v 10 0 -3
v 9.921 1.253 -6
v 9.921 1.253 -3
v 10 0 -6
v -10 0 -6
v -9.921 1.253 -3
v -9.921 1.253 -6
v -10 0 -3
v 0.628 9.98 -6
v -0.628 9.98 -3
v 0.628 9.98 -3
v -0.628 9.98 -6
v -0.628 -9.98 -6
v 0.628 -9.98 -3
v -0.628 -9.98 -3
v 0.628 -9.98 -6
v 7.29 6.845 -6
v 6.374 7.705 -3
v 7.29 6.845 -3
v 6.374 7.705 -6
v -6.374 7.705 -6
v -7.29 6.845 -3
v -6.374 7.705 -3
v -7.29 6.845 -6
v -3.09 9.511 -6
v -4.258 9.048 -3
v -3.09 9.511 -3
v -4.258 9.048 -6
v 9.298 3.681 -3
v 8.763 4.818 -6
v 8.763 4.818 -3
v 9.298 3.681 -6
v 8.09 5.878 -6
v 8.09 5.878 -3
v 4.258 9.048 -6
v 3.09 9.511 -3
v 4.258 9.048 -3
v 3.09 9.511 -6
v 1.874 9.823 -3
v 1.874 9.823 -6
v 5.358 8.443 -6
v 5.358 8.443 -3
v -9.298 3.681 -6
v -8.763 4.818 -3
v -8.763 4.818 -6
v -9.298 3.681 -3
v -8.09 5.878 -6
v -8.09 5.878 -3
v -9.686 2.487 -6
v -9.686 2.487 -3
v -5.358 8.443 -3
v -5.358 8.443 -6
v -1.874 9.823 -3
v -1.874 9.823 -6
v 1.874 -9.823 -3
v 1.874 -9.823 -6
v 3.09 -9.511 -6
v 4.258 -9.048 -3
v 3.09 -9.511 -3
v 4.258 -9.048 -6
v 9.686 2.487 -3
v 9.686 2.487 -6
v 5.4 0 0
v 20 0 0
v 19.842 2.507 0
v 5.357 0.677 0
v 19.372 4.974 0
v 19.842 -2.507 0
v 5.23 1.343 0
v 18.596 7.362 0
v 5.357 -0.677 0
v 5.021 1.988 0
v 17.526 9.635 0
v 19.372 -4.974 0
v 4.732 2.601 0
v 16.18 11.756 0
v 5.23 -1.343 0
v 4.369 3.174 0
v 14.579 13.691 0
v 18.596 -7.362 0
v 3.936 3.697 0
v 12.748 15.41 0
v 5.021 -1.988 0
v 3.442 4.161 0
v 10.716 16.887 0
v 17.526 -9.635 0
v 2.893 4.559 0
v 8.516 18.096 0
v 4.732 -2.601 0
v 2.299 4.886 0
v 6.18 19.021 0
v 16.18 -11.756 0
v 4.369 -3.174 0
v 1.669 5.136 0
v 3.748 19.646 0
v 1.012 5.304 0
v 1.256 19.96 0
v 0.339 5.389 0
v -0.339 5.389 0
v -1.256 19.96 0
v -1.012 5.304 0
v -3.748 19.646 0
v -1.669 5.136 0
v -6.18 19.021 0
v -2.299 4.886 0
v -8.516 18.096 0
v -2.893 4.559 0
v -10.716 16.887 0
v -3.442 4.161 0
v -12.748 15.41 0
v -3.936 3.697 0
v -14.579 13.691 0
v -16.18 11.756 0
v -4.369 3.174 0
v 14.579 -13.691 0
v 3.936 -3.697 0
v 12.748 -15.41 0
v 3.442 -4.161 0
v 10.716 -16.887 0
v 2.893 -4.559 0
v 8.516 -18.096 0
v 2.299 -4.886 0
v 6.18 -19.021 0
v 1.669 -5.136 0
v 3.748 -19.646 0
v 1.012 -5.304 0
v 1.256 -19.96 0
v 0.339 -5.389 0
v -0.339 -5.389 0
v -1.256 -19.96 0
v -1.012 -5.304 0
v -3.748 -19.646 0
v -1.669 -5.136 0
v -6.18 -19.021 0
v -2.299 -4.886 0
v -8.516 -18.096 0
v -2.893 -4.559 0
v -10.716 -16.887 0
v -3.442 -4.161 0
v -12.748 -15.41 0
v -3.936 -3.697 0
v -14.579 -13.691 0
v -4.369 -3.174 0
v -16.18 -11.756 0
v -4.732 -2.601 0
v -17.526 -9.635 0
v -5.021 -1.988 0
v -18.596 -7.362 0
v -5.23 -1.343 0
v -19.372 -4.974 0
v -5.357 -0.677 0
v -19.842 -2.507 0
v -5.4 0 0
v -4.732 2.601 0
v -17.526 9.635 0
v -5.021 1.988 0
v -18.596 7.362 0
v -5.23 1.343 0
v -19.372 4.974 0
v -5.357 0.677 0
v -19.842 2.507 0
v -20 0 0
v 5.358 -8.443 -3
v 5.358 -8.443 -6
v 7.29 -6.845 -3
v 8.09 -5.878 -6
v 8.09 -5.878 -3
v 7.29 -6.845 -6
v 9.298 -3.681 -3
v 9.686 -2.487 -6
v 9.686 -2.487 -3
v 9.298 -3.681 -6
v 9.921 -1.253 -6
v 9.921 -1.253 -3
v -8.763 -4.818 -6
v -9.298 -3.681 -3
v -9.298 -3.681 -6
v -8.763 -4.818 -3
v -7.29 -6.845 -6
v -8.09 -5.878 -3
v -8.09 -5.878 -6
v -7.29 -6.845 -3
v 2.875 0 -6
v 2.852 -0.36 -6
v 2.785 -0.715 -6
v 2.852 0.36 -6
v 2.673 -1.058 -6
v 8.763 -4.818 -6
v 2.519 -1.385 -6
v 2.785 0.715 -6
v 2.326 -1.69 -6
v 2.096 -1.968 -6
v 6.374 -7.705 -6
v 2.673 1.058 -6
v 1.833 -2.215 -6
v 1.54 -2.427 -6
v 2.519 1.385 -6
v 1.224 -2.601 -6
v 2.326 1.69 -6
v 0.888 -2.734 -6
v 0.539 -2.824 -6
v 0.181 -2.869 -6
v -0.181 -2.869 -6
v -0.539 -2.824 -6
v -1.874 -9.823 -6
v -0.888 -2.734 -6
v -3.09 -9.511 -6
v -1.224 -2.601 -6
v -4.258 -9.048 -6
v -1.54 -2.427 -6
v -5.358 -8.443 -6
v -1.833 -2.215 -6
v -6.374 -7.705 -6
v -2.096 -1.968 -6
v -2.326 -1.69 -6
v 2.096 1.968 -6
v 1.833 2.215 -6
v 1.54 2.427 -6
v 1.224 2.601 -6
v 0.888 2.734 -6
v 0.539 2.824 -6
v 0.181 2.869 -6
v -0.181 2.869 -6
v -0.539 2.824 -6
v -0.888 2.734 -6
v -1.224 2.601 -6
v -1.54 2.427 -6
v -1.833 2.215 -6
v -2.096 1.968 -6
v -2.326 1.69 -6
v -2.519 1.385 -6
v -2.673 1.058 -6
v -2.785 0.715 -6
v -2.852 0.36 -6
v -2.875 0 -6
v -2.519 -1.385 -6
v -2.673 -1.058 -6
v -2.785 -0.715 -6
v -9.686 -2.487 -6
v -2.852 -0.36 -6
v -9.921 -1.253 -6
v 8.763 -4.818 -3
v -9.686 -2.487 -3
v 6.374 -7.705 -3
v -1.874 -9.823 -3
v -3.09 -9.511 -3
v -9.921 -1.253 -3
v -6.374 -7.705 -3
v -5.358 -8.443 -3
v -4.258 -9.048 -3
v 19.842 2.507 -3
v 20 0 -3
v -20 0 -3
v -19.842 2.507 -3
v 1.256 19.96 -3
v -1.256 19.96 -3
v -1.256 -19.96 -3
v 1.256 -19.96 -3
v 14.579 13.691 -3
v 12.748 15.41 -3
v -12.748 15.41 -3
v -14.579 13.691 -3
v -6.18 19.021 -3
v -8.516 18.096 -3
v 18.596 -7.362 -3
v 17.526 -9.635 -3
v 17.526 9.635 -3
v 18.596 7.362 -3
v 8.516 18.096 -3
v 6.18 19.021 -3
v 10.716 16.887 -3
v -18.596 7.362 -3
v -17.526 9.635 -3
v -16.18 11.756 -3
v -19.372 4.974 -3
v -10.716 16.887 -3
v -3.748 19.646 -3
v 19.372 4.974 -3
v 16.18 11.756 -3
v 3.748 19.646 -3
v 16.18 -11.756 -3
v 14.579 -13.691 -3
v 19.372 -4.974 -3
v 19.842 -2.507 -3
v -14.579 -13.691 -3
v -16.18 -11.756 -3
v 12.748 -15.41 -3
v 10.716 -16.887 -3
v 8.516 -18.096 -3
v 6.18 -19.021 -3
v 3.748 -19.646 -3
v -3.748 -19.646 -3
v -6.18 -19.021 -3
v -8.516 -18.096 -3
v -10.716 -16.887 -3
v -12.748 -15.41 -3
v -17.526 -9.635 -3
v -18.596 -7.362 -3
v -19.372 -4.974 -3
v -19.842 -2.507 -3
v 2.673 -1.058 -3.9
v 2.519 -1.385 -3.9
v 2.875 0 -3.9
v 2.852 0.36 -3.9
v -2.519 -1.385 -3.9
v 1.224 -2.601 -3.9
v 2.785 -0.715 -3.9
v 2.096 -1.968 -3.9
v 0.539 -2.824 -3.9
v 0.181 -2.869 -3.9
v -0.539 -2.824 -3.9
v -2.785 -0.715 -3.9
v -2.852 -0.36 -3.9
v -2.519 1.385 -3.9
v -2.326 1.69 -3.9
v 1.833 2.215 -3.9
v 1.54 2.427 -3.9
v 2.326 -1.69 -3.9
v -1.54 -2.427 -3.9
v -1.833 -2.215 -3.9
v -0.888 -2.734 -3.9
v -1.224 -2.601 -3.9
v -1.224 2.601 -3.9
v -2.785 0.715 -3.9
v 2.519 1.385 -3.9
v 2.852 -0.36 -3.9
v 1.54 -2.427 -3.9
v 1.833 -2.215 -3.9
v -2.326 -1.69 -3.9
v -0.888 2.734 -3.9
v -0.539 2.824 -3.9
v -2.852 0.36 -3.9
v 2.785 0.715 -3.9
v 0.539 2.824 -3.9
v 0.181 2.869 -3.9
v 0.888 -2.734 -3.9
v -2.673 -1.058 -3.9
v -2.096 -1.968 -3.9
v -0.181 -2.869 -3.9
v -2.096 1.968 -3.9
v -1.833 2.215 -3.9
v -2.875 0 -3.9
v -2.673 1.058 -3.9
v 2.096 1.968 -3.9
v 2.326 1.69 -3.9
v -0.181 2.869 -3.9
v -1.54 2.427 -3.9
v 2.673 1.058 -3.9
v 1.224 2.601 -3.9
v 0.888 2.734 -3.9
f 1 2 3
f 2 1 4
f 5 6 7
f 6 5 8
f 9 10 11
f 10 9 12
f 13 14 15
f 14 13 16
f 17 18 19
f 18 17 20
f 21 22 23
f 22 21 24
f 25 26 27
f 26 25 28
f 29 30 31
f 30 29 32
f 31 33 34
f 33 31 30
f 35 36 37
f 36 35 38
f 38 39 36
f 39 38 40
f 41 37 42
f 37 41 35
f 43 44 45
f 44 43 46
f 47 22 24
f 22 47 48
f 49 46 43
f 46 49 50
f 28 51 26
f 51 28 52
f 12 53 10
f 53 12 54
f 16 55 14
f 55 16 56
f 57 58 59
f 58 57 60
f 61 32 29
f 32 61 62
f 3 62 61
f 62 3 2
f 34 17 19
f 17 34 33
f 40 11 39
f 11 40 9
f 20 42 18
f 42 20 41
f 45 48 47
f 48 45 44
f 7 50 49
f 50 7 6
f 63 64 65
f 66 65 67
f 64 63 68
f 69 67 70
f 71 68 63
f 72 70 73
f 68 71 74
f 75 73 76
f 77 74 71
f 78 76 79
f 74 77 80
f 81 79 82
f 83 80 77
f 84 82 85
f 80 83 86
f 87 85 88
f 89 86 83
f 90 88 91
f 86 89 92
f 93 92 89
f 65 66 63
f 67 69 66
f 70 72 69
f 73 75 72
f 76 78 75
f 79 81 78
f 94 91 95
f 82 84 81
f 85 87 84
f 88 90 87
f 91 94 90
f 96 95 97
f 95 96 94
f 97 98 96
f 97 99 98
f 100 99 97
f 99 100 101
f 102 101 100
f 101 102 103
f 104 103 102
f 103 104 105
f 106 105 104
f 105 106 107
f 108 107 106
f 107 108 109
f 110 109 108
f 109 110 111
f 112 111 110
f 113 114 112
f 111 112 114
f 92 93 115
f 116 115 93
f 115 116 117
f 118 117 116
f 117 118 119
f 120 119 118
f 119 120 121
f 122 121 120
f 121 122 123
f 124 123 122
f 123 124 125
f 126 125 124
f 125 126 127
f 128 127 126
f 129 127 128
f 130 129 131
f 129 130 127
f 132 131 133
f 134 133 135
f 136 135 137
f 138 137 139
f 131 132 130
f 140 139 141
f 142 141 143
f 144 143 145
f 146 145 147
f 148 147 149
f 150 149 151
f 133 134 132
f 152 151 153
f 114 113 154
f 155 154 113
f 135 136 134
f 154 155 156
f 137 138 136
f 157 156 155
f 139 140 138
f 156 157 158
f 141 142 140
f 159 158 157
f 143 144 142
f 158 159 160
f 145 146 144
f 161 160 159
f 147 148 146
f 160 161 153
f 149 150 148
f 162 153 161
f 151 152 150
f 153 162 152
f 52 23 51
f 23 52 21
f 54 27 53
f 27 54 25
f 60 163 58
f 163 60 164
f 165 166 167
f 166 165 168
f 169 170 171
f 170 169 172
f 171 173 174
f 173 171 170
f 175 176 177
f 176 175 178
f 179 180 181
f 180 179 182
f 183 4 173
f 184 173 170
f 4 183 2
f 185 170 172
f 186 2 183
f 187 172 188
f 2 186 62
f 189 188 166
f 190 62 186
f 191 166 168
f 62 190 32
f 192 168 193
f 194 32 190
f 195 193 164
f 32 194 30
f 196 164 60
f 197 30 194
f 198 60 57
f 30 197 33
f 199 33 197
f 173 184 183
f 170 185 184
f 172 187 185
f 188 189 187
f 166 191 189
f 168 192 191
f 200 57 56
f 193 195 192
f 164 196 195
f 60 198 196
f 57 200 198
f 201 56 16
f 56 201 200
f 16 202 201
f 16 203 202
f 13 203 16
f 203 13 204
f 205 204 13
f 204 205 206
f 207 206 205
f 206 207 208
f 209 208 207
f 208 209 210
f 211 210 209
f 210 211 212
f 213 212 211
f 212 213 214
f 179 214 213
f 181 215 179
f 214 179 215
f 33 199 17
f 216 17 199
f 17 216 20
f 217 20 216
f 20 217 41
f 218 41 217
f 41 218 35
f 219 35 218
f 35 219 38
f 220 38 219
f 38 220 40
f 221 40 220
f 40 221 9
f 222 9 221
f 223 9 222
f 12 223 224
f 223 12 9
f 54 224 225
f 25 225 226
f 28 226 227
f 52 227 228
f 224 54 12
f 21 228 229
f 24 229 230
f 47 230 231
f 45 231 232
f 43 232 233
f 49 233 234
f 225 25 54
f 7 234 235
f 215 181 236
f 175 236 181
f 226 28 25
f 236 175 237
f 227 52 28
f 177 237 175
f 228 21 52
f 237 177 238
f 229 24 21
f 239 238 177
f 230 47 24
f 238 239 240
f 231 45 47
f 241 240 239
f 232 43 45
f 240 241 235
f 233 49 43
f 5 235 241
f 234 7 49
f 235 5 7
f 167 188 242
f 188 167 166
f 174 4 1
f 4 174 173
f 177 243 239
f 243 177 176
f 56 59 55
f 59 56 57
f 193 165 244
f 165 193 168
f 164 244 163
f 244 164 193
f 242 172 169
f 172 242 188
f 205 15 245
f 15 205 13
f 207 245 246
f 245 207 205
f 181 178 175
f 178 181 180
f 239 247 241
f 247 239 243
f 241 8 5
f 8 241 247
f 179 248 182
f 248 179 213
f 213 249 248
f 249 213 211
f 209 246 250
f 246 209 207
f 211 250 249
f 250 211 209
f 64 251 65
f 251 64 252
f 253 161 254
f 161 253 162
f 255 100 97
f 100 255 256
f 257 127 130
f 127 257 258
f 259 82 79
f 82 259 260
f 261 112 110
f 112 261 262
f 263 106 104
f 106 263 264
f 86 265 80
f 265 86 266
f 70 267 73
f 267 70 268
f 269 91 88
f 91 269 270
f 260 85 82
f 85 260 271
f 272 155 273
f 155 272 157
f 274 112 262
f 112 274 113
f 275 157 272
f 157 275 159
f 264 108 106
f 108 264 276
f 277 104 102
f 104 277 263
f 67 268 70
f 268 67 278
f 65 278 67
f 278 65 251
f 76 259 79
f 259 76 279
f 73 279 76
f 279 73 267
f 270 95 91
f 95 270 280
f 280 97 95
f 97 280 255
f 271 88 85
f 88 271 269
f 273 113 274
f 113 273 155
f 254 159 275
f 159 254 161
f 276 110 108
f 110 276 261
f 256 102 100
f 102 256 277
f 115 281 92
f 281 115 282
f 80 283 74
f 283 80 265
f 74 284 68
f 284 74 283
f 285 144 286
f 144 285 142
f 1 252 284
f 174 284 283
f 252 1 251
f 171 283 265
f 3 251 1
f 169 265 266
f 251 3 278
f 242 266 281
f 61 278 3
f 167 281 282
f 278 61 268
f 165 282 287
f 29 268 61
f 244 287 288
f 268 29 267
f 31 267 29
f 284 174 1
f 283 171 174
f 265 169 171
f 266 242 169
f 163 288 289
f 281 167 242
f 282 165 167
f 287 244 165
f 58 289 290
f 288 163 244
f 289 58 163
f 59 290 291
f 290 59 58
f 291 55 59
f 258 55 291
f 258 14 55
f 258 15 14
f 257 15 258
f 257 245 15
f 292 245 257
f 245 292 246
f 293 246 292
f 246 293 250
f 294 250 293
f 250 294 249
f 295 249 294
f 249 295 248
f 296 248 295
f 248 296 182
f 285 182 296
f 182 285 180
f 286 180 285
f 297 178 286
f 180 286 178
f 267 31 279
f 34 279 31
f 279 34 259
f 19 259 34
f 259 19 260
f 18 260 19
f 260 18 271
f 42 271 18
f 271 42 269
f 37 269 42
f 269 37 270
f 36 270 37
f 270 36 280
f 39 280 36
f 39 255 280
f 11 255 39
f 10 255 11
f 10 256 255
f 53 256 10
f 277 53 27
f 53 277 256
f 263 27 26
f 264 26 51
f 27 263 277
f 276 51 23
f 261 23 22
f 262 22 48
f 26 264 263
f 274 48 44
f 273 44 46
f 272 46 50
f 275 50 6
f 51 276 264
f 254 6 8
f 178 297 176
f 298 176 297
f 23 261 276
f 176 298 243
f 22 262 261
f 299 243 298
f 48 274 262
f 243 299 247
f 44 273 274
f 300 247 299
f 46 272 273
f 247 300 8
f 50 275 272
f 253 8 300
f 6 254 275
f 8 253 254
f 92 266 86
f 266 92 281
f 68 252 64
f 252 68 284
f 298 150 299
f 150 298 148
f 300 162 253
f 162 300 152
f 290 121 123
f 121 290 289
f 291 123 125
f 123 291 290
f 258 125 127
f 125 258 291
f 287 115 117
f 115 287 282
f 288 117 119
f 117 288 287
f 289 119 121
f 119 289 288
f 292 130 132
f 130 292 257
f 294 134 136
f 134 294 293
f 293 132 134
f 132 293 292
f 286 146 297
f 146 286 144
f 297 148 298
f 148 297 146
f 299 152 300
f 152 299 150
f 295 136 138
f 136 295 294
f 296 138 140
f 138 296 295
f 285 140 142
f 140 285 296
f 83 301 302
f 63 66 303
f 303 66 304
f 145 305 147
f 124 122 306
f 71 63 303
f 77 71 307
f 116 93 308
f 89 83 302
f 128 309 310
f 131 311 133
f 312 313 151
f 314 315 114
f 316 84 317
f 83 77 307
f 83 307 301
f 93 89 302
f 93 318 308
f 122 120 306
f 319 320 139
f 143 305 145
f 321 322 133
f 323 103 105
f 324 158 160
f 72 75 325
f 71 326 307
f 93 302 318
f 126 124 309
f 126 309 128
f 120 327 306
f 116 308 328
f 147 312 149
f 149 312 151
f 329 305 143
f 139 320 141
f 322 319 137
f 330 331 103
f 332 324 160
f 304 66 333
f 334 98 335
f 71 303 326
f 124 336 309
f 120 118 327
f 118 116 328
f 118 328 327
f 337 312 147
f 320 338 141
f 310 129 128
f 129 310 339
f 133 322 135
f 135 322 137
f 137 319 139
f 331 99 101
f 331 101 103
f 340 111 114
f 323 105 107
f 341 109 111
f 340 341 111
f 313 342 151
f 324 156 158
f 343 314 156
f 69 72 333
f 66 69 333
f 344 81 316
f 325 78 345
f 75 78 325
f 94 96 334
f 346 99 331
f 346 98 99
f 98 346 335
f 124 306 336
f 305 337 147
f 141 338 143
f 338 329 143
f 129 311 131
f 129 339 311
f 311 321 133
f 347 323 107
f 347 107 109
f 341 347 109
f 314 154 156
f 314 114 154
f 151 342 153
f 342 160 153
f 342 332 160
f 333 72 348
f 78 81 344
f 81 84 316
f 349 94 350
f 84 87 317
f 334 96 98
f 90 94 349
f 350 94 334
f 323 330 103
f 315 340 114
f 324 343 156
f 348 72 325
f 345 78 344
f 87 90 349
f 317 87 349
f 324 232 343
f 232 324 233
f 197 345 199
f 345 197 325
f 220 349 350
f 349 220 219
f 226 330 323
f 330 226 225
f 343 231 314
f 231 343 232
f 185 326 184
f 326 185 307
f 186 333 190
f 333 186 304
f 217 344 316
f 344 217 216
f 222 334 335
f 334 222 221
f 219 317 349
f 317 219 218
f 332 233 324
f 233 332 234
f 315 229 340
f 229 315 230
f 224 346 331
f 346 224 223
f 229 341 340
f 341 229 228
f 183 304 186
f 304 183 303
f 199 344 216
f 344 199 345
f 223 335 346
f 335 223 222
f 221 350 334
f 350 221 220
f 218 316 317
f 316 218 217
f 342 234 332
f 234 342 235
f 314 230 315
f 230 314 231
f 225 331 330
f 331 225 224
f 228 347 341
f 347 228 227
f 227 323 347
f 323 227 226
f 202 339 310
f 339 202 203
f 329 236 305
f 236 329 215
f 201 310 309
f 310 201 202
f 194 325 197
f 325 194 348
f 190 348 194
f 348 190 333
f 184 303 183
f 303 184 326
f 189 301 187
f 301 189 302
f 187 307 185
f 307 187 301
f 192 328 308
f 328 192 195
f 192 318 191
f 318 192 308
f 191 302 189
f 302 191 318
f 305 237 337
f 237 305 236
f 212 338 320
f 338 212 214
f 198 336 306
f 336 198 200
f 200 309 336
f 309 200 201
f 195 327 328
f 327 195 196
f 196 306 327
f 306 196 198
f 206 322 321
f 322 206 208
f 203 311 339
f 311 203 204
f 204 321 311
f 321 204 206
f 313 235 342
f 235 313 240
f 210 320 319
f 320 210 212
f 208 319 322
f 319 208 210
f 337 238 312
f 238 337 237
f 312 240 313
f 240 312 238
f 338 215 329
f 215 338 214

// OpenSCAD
$fn = 50;


difference() {
	union() {
		translate(v = [0, 0, -6.0000000000]) {
			cylinder(h = 6, r = 10.0000000000);
		}
		translate(v = [0, 0, -3.0000000000]) {
			cylinder(h = 3, r = 20.0000000000);
		}
	}
	union() {
		translate(v = [0, 0, 0]) {
			rotate(a = [0, 0, 0]) {
				difference() {
					union() {
						#translate(v = [0, 0, -6.0000000000]) {
							cylinder(h = 6, r = 2.6000000000);
						}
						#translate(v = [0, 0, -3.9000000000]) {
							cylinder(h = 3.9000000000, r = 10.0000000000, r1 = 2.8750000000, r2 = 5.4000000000);
						}
						#translate(v = [0, 0, -6.0000000000]) {
							cylinder(h = 6, r = 2.8750000000);
						}
						#translate(v = [0, 0, -6.0000000000]) {
							cylinder(h = 6, r = 2.6000000000);
						}
					}
					union();
				}
			}
		}
	}
}
